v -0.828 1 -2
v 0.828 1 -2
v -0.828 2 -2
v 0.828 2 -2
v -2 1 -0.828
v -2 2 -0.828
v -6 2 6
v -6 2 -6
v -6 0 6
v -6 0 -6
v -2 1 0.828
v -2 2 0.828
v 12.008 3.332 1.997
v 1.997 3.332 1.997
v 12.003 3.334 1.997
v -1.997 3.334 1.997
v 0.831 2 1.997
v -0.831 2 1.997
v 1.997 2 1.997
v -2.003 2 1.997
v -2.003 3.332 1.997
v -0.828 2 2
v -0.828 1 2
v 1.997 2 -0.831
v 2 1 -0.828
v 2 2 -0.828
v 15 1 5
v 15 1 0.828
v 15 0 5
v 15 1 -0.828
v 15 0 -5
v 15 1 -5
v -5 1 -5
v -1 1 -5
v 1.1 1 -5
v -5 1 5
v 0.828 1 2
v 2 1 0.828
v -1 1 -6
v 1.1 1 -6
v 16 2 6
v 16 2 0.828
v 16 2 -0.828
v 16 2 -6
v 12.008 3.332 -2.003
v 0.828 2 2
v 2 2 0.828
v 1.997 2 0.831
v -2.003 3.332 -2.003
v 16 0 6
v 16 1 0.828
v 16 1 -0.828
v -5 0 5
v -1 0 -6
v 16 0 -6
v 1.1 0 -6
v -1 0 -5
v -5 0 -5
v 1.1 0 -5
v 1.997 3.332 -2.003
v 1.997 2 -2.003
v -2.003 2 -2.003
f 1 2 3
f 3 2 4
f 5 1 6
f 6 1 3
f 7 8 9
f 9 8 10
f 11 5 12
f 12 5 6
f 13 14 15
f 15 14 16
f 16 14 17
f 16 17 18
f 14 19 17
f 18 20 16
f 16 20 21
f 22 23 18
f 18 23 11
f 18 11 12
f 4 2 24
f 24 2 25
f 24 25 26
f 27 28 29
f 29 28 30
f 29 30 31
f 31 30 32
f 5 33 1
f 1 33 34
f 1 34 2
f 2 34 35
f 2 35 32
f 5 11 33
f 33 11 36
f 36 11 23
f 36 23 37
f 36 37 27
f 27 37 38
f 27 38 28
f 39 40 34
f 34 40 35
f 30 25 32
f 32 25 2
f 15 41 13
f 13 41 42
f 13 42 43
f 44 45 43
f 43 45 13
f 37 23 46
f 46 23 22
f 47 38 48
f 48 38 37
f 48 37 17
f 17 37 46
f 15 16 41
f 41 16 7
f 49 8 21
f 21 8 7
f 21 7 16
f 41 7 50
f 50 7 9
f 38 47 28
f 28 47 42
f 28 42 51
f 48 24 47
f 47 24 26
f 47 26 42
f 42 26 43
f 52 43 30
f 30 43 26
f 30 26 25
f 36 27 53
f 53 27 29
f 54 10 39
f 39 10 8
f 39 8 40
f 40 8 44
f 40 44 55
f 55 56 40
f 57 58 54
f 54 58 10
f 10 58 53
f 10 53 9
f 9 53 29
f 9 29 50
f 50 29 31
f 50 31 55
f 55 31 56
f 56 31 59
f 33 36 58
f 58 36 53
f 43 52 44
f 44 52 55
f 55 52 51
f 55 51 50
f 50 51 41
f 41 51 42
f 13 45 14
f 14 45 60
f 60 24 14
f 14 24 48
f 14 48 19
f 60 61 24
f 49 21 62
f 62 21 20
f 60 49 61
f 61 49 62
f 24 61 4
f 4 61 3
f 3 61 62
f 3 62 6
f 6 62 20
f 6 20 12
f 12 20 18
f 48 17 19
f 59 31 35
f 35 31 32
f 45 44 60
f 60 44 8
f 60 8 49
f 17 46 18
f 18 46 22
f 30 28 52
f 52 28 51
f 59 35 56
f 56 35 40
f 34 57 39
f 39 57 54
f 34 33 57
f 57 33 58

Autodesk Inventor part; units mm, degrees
ref_plane "YZ Plane" through (0, 0, 0) normal (1, 0, 0) x (0, 1, 0)
ref_plane "XZ Plane" through (0, 0, 0) normal (0, 1, 0) x (-1, 0, 0)
ref_plane "XY Plane" through (0, 0, 0) normal (0, 0, 1) x (1, 0, 0)
sketch "Sketch1" plane through (0, 0, 0) normal (0, 1, 0) x (-1, 0, 0)
  line L0 (5, 5) -> (-5, 5)
  line L1 (-5, 5) -> (-5, -5)
  line L2 (-5, -5) -> (5, -5)
  line L3 (5, -5) -> (5, 5)
  line L4 (6, 6) -> (-6, 6)
  line L5 (-6, 6) -> (-6, -6)
  line L6 (-6, -6) -> (6, -6)
  line L7 (6, -6) -> (6, 6)
  point P0 (0, 0)
  dimension "d0" = 10
  dimension "d1" = 10
  dimension "d2" = 5
  dimension "d3" = 5
  dimension "d4" = 12
  dimension "d5" = 12
  dimension "d6" = 1
  dimension "d7" = 1
extrude "Extrusion1" add sketch "Sketch1" along normal blind 2
sketch "Sketch2" plane through (6, 0, 6) normal (1, 0, 0) x (0, 0, -1)
  line L0 (0, 0) -> (0, 2) projected
  line L1 (12, 0) -> (12, 2) projected
  line L2 (0, 2) -> (12, 2)
  line L3 (12, 2) -> (12, 1)
  line L4 (12, 1) -> (0, 1)
  line L5 (0, 1) -> (0, 2)
  point P0 (6, 0)
extrude "Extrusion2" add sketch "Sketch2" against normal blind 11.5
sketch "Sketch3" plane through (0, 2, 0) normal (0, 1, 0) x (1, 0, 0)
  line L0 (-2, -2) -> (2, -2)
  line L1 (2, -2) -> (2, 2)
  line L2 (2, 2) -> (-2, 2)
  line L3 (-2, 2) -> (-2, -2)
  circle A0 centre (0, 0) radius 2.8284
  line L4 (0, -2.8284) -> (-2.8284, 0)
  line L5 (-2.8284, 0) -> (0, 2.8284)
  line L6 (2.8284, 0) -> (0, 2.8284)
  line L7 (2.8284, 0) -> (0, -2.8284)
  point P0 (0.8284, -2)
  point P1 (2, -0.8284)
  point P2 (2, 0.8284)
  point P3 (0.8284, 2)
  point P4 (-0.8284, 2)
  point P5 (-2, 0.8284)
  point P6 (-2, -0.8284)
  point P7 (-0.8284, -2)
  dimension "d13" = 4
  dimension "d14" = 4
  dimension "d15" = 2
  dimension "d16" = 2
extrude "Extrusion3" cut sketch "Sketch3" along normal blind 23.25 and the other way blind 11.625 contours L4 L3 L5 L2 L6 L1 L7 L0
sketch "Sketch4" plane through (0, 2, 0) normal (0, 1, 0) x (1, 0, 0)
  line L0 (2, -0.8284) -> (2, 0.8284) projected
  line L1 (2, -0.8284) -> (2.8765, -0.8284)
  line L2 (2.8765, -0.8284) -> (2.8765, 0.8284)
  line L3 (2.8765, 0.8284) -> (2, 0.8284)
  line L4 (2, 0.8284) -> (2, -0.8284)
  line L5 (2.8765, -0.8284) -> (7.5124, -0.8284)
  line L6 (7.5124, -0.8284) -> (7.5124, 0.8284)
  line L7 (7.5124, 0.8284) -> (2.8765, 0.8284)
  line L8 (2.8765, 0.8284) -> (2.8765, -0.8284)
  point P0 (0, 0)
  point P1 (2.8765, 0.8284)
  point P2 (2, 0.8284)
extrude "Extrusion4" cut sketch "Sketch4" against normal blind 1
sketch "Sketch5" plane through (0, 2, 0) normal (0, 1, 0) x (1, 0, 0)
  line L0 (-6, -6) -> (6, -6) projected
  line L1 (6, 0.8284) -> (6, 6) projected
  line L2 (-6, -6) -> (6, -6)
  line L3 (6, -6) -> (6, 6)
  line L4 (6, 6) -> (-6, 6)
  line L5 (-6, 6) -> (-6, -6)
  point P0 (0, 0)
  point P1 (6, -6)
extrude "Extrusion5" add sketch "Sketch5" along normal blind 25
sketch "Sketch6" plane through (6, 0, 6) normal (1, 0, 0) x (0, 0, -1)
  line L0 (5.1716, 1) -> (5.1716, 2) projected
  line L1 (5.1716, 2) -> (-3.596, 2)
  line L2 (0, 0) -> (0, 27) projected
  line L3 (4, 2) -> (5.1716, 2) projected
  line L4 (5.1716, 2) -> (16.1787, 2)
  line L5 (5.1716, 2) -> (6.8284, 2) projected
  line L6 (6, 2) -> (6, 6)
  line L7 (0, 2) -> (6, 4)
  line L8 (6, 4) -> (12, 2)
  line L9 (12, 0) -> (12, 27) projected
  line L10 (12, 2) -> (-2.4689, 2)
  line L11 (-2.4689, 2) -> (-2.4689, 28.669)
  line L12 (-2.4689, 28.669) -> (12, 28.669)
  line L13 (12, 28.669) -> (12, 2)
  point P0 (6, 0)
  dimension "d23" = 4
extrude "Extrusion6" cut sketch "Sketch6" against normal blind 23.25 contours L1 L11 L12 L13 L9 L8 L7
sketch "Sketch7" plane through (-6, 0, 6) normal (0, 0, 1) x (1, 0, 0)
  line L0 (6, 0) -> (6, 4)
  line L1 (12, 4) -> (0, 4) projected
  line L2 (0, 2) -> (12, 2) projected
  line L3 (12, 2) -> (6, 4)
  line L4 (0, 4) -> (0, 2) projected
  line L5 (6, 4) -> (0, 2)
  line L6 (0, 2) -> (13.6732, 2)
  line L7 (13.6732, 2) -> (13.6732, 4.9606)
  line L8 (13.6732, 4.9606) -> (0, 4.9606)
  line L9 (0, 4.9606) -> (0, 2)
extrude "Extrusion7" cut sketch "Sketch7" against normal blind 41.75 contours L5 L4 L1 | L1 L9 L8 L7 L6 L3
sketch "Sketch8" plane through (0, 2, 0) normal (0, -1, 0) x (1, 0, 0)
  line L0 (6, 6) -> (0, 0) projected
  line L1 (1.9974, 1.9974) -> (-2.0026, 1.9974)
  line L2 (-2.0026, 1.9974) -> (-2.0026, -2.0026)
  line L3 (-2.0026, -2.0026) -> (1.9974, -2.0026)
  line L4 (1.9974, -2.0026) -> (1.9974, 1.9974)
  dimension "d30" = 4
  dimension "d31" = 4
extrude "Extrusion8" cut sketch "Sketch8" against normal blind 105
sketch "Sketch9" plane through (6, 0, 6) normal (1, 0, 0) x (0, 0, -1)
  line L0 (0, 0) -> (0, 2) projected
  line L1 (12, 0) -> (12, 2) projected
  line L2 (0, 0) -> (12, 0)
  line L3 (12, 0) -> (12, 2)
  line L4 (12, 2) -> (0, 2)
  line L5 (0, 2) -> (0, 0)
  point P0 (6, 0)
extrude "Extrusion9" add sketch "Sketch9" along normal blind 10
sketch "Sketch10" plane through (0, 0, 0) normal (0, -1, 0) x (1, 0, 0)
  line L0 (5, -5) -> (5, 5) projected
  line L1 (5, 5) -> (15, 5)
  line L2 (15, 5) -> (15, -5)
  line L3 (15, -5) -> (5, -5)
  line L4 (5, -5) -> (5, 5)
  point P0 (0, 0)
  dimension "d36" = 10
extrude "Extrusion10" cut sketch "Sketch10" against normal up to surface (1 mm away)
sketch "Sketch11" plane through (6, 2, 6) normal (0, 1, 0) x (1, 0, 0)
  line L0 (10, 0) -> (10, 12) projected
  line L1 (0, 0) -> (-4.0026, 4.0026) projected
  line L2 (10, 12) -> (-4.0026, 12)
  line L3 (-4.0026, 12) -> (-4.0026, 4.0026)
  line L4 (-4.0026, 4.0026) -> (10, 4.0026)
  line L5 (10, 4.0026) -> (10, 12)
  line L6 (-12, 0) -> (10, 0) projected
  line L7 (-4.0026, 4.0026) -> (10, 4.0026)
  line L8 (10, 4.0026) -> (10, 0)
  line L9 (10, 0) -> (-4.0026, 0)
  line L10 (-4.0026, 0) -> (-4.0026, 4.0026)
  point P0 (-6, 6)
extrude "Extrusion11" add sketch "Sketch11" along normal blind 1.5 contours L6 L1 L4 L0 | L4 L3 L2 L0
sketch "Sketch12" plane through (16, 0, 6) normal (1, 0, 0) x (0, 0, -1)
  line L0 (0, 2) -> (12, 2) projected
  line L1 (4.0026, 3.3342) -> (0, 2) projected
  line L2 (4.0026, 2) -> (4.0026, 3.3342) projected
  line L3 (0, 2) -> (4.0026, 3.3342)
  line L4 (4.0026, 3.3325) -> (8.0026, 3.3325) projected
  line L5 (4.0026, 3.3342) -> (8.0026, 3.3325)
  line L6 (12, 0) -> (12, 2) projected
  line L7 (8.0026, 3.3325) -> (12, 2)
  line L8 (0, 2) -> (-1.9464, 6.2775)
  line L9 (-1.9464, 6.2775) -> (14.9869, 5.8247)
  line L10 (14.9869, 5.8247) -> (12, 2)
  point P0 (6, 0)
extrude "Extrusion12" cut sketch "Sketch12" against normal blind 26 contours L8 L9 L10 L7 L4 L1
sketch "Sketch13" plane through (-6, 0, 6) normal (0, 0, 1) x (1, 0, 0)
  line L0 (3.9974, 2) -> (3.9974, 3.3325) projected
  line L1 (4.0026, 3.3342) -> (0, 2) projected
  line L2 (3.9974, 3.3325) -> (0, 3.3325)
  line L3 (0, 3.3325) -> (0, 2)
  line L4 (0, 2) -> (3.9974, 2)
  line L5 (3.9974, 2) -> (3.9974, 3.3325)
  line L6 (22, 2) -> (0, 2) projected
  line L7 (22, 3.3342) -> (4.0026, 3.3342) projected
  line L8 (22, 2) -> (18.0026, 2)
  line L9 (18.0026, 2) -> (18.0026, 3.3342)
  line L10 (18.0026, 3.3342) -> (22, 3.3342)
  line L11 (22, 3.3342) -> (22, 2)
  line L12 (18.0026, 3.3342) -> (22, 2)
  point P0 (6, 0)
  dimension "d43" = 3.9974
  dimension "d44" = 3.9974
extrude "Extrusion13" cut sketch "Sketch13" against normal blind 17.75 contours L12 L7 L11
sketch "Sketch14" plane through (-5, 1, -5) normal (0, -1, 0) x (1, 0, 0)
  line L0 (11, 5.8284) -> (11, 4.1716) projected
  line L1 (11, 5.8284) -> (19.699, 5.8284)
  line L2 (19.699, 5.8284) -> (19.699, 4.1716)
  line L3 (19.699, 4.1716) -> (11, 4.1716)
  line L4 (11, 4.1716) -> (11, 5.8284)
  line L5 (19.699, 4.1716) -> (21.7329, 4.1716)
  line L6 (21.7329, 4.1716) -> (21.7329, 5.8284)
  line L7 (21.7329, 5.8284) -> (19.699, 5.8284)
  line L8 (19.699, 5.8284) -> (19.699, 4.1716)
  point P0 (5, 5)
extrude "Extrusion14" cut sketch "Sketch14" against normal up to surface (1 mm away)
sketch "Sketch15" plane through (0, 0, 0) normal (0, -1, 0) x (1, 0, 0)
  point P0 (0, 0)
sketch "Sketch16" plane through (-6, 0, -6) normal (0, 0, -1) x (-1, 0, 0)
  line L0 (-6, 0) -> (-5, 0)
  line L1 (-5, 0) -> (-5, 1.1)
  line L2 (-5, 1.1) -> (-6, 1.1)
  line L3 (-6, 1.1) -> (-6, 0)
  line L4 (-6, 0) -> (-7.1, 0)
  line L5 (-7.1, 0) -> (-7.1, 1.1)
  line L6 (-7.1, 1.1) -> (-6, 1.1)
  line L7 (-6, 1.1) -> (-6, 0)
  line L8 (-8, 1) -> (-6.8284, 1) projected
  line L9 (-7.1, 1) -> (-5, 1)
  line L10 (-5, 1) -> (-5, 0)
  line L11 (-5, 0) -> (-7.1, 0)
  line L12 (-7.1, 0) -> (-7.1, 1)
  point P0 (-5, 1)
  dimension "d49" = 1.1
extrude "Extrusion15" cut sketch "Sketch16" against normal blind 4.75 contours L3 L9 L1 L0 | L4 L5 L8 L9 L3
equation "\"d2\" = 0.5 * d0"
equation "\"d3\" = 0.5 * d1"
equation "\"d15\" = 0.5 * d13"
equation "\"d16\" = 0.5 * d14"
equation "\"d44\" = d43"
equation "\"BendRadius\" = Thickness"
equation "\"BendReliefWidth\" = Thickness"
equation "\"BendReliefDepth\" = 0.5 * Thickness"
equation "\"CornerReliefSize\" = 4 * Thickness"
equation "\"MinimumRemnant\" = 2 * Thickness"
equation "\"TransitionRadius\" = BendRadius"
equation "\"JacobiRadiusSize\" = BendRadius"
equation "\"GapSize\" = Thickness"
equation "\"Thickness\" = 0.5"
properties part number "modelGatePoklice1Prostredni"
